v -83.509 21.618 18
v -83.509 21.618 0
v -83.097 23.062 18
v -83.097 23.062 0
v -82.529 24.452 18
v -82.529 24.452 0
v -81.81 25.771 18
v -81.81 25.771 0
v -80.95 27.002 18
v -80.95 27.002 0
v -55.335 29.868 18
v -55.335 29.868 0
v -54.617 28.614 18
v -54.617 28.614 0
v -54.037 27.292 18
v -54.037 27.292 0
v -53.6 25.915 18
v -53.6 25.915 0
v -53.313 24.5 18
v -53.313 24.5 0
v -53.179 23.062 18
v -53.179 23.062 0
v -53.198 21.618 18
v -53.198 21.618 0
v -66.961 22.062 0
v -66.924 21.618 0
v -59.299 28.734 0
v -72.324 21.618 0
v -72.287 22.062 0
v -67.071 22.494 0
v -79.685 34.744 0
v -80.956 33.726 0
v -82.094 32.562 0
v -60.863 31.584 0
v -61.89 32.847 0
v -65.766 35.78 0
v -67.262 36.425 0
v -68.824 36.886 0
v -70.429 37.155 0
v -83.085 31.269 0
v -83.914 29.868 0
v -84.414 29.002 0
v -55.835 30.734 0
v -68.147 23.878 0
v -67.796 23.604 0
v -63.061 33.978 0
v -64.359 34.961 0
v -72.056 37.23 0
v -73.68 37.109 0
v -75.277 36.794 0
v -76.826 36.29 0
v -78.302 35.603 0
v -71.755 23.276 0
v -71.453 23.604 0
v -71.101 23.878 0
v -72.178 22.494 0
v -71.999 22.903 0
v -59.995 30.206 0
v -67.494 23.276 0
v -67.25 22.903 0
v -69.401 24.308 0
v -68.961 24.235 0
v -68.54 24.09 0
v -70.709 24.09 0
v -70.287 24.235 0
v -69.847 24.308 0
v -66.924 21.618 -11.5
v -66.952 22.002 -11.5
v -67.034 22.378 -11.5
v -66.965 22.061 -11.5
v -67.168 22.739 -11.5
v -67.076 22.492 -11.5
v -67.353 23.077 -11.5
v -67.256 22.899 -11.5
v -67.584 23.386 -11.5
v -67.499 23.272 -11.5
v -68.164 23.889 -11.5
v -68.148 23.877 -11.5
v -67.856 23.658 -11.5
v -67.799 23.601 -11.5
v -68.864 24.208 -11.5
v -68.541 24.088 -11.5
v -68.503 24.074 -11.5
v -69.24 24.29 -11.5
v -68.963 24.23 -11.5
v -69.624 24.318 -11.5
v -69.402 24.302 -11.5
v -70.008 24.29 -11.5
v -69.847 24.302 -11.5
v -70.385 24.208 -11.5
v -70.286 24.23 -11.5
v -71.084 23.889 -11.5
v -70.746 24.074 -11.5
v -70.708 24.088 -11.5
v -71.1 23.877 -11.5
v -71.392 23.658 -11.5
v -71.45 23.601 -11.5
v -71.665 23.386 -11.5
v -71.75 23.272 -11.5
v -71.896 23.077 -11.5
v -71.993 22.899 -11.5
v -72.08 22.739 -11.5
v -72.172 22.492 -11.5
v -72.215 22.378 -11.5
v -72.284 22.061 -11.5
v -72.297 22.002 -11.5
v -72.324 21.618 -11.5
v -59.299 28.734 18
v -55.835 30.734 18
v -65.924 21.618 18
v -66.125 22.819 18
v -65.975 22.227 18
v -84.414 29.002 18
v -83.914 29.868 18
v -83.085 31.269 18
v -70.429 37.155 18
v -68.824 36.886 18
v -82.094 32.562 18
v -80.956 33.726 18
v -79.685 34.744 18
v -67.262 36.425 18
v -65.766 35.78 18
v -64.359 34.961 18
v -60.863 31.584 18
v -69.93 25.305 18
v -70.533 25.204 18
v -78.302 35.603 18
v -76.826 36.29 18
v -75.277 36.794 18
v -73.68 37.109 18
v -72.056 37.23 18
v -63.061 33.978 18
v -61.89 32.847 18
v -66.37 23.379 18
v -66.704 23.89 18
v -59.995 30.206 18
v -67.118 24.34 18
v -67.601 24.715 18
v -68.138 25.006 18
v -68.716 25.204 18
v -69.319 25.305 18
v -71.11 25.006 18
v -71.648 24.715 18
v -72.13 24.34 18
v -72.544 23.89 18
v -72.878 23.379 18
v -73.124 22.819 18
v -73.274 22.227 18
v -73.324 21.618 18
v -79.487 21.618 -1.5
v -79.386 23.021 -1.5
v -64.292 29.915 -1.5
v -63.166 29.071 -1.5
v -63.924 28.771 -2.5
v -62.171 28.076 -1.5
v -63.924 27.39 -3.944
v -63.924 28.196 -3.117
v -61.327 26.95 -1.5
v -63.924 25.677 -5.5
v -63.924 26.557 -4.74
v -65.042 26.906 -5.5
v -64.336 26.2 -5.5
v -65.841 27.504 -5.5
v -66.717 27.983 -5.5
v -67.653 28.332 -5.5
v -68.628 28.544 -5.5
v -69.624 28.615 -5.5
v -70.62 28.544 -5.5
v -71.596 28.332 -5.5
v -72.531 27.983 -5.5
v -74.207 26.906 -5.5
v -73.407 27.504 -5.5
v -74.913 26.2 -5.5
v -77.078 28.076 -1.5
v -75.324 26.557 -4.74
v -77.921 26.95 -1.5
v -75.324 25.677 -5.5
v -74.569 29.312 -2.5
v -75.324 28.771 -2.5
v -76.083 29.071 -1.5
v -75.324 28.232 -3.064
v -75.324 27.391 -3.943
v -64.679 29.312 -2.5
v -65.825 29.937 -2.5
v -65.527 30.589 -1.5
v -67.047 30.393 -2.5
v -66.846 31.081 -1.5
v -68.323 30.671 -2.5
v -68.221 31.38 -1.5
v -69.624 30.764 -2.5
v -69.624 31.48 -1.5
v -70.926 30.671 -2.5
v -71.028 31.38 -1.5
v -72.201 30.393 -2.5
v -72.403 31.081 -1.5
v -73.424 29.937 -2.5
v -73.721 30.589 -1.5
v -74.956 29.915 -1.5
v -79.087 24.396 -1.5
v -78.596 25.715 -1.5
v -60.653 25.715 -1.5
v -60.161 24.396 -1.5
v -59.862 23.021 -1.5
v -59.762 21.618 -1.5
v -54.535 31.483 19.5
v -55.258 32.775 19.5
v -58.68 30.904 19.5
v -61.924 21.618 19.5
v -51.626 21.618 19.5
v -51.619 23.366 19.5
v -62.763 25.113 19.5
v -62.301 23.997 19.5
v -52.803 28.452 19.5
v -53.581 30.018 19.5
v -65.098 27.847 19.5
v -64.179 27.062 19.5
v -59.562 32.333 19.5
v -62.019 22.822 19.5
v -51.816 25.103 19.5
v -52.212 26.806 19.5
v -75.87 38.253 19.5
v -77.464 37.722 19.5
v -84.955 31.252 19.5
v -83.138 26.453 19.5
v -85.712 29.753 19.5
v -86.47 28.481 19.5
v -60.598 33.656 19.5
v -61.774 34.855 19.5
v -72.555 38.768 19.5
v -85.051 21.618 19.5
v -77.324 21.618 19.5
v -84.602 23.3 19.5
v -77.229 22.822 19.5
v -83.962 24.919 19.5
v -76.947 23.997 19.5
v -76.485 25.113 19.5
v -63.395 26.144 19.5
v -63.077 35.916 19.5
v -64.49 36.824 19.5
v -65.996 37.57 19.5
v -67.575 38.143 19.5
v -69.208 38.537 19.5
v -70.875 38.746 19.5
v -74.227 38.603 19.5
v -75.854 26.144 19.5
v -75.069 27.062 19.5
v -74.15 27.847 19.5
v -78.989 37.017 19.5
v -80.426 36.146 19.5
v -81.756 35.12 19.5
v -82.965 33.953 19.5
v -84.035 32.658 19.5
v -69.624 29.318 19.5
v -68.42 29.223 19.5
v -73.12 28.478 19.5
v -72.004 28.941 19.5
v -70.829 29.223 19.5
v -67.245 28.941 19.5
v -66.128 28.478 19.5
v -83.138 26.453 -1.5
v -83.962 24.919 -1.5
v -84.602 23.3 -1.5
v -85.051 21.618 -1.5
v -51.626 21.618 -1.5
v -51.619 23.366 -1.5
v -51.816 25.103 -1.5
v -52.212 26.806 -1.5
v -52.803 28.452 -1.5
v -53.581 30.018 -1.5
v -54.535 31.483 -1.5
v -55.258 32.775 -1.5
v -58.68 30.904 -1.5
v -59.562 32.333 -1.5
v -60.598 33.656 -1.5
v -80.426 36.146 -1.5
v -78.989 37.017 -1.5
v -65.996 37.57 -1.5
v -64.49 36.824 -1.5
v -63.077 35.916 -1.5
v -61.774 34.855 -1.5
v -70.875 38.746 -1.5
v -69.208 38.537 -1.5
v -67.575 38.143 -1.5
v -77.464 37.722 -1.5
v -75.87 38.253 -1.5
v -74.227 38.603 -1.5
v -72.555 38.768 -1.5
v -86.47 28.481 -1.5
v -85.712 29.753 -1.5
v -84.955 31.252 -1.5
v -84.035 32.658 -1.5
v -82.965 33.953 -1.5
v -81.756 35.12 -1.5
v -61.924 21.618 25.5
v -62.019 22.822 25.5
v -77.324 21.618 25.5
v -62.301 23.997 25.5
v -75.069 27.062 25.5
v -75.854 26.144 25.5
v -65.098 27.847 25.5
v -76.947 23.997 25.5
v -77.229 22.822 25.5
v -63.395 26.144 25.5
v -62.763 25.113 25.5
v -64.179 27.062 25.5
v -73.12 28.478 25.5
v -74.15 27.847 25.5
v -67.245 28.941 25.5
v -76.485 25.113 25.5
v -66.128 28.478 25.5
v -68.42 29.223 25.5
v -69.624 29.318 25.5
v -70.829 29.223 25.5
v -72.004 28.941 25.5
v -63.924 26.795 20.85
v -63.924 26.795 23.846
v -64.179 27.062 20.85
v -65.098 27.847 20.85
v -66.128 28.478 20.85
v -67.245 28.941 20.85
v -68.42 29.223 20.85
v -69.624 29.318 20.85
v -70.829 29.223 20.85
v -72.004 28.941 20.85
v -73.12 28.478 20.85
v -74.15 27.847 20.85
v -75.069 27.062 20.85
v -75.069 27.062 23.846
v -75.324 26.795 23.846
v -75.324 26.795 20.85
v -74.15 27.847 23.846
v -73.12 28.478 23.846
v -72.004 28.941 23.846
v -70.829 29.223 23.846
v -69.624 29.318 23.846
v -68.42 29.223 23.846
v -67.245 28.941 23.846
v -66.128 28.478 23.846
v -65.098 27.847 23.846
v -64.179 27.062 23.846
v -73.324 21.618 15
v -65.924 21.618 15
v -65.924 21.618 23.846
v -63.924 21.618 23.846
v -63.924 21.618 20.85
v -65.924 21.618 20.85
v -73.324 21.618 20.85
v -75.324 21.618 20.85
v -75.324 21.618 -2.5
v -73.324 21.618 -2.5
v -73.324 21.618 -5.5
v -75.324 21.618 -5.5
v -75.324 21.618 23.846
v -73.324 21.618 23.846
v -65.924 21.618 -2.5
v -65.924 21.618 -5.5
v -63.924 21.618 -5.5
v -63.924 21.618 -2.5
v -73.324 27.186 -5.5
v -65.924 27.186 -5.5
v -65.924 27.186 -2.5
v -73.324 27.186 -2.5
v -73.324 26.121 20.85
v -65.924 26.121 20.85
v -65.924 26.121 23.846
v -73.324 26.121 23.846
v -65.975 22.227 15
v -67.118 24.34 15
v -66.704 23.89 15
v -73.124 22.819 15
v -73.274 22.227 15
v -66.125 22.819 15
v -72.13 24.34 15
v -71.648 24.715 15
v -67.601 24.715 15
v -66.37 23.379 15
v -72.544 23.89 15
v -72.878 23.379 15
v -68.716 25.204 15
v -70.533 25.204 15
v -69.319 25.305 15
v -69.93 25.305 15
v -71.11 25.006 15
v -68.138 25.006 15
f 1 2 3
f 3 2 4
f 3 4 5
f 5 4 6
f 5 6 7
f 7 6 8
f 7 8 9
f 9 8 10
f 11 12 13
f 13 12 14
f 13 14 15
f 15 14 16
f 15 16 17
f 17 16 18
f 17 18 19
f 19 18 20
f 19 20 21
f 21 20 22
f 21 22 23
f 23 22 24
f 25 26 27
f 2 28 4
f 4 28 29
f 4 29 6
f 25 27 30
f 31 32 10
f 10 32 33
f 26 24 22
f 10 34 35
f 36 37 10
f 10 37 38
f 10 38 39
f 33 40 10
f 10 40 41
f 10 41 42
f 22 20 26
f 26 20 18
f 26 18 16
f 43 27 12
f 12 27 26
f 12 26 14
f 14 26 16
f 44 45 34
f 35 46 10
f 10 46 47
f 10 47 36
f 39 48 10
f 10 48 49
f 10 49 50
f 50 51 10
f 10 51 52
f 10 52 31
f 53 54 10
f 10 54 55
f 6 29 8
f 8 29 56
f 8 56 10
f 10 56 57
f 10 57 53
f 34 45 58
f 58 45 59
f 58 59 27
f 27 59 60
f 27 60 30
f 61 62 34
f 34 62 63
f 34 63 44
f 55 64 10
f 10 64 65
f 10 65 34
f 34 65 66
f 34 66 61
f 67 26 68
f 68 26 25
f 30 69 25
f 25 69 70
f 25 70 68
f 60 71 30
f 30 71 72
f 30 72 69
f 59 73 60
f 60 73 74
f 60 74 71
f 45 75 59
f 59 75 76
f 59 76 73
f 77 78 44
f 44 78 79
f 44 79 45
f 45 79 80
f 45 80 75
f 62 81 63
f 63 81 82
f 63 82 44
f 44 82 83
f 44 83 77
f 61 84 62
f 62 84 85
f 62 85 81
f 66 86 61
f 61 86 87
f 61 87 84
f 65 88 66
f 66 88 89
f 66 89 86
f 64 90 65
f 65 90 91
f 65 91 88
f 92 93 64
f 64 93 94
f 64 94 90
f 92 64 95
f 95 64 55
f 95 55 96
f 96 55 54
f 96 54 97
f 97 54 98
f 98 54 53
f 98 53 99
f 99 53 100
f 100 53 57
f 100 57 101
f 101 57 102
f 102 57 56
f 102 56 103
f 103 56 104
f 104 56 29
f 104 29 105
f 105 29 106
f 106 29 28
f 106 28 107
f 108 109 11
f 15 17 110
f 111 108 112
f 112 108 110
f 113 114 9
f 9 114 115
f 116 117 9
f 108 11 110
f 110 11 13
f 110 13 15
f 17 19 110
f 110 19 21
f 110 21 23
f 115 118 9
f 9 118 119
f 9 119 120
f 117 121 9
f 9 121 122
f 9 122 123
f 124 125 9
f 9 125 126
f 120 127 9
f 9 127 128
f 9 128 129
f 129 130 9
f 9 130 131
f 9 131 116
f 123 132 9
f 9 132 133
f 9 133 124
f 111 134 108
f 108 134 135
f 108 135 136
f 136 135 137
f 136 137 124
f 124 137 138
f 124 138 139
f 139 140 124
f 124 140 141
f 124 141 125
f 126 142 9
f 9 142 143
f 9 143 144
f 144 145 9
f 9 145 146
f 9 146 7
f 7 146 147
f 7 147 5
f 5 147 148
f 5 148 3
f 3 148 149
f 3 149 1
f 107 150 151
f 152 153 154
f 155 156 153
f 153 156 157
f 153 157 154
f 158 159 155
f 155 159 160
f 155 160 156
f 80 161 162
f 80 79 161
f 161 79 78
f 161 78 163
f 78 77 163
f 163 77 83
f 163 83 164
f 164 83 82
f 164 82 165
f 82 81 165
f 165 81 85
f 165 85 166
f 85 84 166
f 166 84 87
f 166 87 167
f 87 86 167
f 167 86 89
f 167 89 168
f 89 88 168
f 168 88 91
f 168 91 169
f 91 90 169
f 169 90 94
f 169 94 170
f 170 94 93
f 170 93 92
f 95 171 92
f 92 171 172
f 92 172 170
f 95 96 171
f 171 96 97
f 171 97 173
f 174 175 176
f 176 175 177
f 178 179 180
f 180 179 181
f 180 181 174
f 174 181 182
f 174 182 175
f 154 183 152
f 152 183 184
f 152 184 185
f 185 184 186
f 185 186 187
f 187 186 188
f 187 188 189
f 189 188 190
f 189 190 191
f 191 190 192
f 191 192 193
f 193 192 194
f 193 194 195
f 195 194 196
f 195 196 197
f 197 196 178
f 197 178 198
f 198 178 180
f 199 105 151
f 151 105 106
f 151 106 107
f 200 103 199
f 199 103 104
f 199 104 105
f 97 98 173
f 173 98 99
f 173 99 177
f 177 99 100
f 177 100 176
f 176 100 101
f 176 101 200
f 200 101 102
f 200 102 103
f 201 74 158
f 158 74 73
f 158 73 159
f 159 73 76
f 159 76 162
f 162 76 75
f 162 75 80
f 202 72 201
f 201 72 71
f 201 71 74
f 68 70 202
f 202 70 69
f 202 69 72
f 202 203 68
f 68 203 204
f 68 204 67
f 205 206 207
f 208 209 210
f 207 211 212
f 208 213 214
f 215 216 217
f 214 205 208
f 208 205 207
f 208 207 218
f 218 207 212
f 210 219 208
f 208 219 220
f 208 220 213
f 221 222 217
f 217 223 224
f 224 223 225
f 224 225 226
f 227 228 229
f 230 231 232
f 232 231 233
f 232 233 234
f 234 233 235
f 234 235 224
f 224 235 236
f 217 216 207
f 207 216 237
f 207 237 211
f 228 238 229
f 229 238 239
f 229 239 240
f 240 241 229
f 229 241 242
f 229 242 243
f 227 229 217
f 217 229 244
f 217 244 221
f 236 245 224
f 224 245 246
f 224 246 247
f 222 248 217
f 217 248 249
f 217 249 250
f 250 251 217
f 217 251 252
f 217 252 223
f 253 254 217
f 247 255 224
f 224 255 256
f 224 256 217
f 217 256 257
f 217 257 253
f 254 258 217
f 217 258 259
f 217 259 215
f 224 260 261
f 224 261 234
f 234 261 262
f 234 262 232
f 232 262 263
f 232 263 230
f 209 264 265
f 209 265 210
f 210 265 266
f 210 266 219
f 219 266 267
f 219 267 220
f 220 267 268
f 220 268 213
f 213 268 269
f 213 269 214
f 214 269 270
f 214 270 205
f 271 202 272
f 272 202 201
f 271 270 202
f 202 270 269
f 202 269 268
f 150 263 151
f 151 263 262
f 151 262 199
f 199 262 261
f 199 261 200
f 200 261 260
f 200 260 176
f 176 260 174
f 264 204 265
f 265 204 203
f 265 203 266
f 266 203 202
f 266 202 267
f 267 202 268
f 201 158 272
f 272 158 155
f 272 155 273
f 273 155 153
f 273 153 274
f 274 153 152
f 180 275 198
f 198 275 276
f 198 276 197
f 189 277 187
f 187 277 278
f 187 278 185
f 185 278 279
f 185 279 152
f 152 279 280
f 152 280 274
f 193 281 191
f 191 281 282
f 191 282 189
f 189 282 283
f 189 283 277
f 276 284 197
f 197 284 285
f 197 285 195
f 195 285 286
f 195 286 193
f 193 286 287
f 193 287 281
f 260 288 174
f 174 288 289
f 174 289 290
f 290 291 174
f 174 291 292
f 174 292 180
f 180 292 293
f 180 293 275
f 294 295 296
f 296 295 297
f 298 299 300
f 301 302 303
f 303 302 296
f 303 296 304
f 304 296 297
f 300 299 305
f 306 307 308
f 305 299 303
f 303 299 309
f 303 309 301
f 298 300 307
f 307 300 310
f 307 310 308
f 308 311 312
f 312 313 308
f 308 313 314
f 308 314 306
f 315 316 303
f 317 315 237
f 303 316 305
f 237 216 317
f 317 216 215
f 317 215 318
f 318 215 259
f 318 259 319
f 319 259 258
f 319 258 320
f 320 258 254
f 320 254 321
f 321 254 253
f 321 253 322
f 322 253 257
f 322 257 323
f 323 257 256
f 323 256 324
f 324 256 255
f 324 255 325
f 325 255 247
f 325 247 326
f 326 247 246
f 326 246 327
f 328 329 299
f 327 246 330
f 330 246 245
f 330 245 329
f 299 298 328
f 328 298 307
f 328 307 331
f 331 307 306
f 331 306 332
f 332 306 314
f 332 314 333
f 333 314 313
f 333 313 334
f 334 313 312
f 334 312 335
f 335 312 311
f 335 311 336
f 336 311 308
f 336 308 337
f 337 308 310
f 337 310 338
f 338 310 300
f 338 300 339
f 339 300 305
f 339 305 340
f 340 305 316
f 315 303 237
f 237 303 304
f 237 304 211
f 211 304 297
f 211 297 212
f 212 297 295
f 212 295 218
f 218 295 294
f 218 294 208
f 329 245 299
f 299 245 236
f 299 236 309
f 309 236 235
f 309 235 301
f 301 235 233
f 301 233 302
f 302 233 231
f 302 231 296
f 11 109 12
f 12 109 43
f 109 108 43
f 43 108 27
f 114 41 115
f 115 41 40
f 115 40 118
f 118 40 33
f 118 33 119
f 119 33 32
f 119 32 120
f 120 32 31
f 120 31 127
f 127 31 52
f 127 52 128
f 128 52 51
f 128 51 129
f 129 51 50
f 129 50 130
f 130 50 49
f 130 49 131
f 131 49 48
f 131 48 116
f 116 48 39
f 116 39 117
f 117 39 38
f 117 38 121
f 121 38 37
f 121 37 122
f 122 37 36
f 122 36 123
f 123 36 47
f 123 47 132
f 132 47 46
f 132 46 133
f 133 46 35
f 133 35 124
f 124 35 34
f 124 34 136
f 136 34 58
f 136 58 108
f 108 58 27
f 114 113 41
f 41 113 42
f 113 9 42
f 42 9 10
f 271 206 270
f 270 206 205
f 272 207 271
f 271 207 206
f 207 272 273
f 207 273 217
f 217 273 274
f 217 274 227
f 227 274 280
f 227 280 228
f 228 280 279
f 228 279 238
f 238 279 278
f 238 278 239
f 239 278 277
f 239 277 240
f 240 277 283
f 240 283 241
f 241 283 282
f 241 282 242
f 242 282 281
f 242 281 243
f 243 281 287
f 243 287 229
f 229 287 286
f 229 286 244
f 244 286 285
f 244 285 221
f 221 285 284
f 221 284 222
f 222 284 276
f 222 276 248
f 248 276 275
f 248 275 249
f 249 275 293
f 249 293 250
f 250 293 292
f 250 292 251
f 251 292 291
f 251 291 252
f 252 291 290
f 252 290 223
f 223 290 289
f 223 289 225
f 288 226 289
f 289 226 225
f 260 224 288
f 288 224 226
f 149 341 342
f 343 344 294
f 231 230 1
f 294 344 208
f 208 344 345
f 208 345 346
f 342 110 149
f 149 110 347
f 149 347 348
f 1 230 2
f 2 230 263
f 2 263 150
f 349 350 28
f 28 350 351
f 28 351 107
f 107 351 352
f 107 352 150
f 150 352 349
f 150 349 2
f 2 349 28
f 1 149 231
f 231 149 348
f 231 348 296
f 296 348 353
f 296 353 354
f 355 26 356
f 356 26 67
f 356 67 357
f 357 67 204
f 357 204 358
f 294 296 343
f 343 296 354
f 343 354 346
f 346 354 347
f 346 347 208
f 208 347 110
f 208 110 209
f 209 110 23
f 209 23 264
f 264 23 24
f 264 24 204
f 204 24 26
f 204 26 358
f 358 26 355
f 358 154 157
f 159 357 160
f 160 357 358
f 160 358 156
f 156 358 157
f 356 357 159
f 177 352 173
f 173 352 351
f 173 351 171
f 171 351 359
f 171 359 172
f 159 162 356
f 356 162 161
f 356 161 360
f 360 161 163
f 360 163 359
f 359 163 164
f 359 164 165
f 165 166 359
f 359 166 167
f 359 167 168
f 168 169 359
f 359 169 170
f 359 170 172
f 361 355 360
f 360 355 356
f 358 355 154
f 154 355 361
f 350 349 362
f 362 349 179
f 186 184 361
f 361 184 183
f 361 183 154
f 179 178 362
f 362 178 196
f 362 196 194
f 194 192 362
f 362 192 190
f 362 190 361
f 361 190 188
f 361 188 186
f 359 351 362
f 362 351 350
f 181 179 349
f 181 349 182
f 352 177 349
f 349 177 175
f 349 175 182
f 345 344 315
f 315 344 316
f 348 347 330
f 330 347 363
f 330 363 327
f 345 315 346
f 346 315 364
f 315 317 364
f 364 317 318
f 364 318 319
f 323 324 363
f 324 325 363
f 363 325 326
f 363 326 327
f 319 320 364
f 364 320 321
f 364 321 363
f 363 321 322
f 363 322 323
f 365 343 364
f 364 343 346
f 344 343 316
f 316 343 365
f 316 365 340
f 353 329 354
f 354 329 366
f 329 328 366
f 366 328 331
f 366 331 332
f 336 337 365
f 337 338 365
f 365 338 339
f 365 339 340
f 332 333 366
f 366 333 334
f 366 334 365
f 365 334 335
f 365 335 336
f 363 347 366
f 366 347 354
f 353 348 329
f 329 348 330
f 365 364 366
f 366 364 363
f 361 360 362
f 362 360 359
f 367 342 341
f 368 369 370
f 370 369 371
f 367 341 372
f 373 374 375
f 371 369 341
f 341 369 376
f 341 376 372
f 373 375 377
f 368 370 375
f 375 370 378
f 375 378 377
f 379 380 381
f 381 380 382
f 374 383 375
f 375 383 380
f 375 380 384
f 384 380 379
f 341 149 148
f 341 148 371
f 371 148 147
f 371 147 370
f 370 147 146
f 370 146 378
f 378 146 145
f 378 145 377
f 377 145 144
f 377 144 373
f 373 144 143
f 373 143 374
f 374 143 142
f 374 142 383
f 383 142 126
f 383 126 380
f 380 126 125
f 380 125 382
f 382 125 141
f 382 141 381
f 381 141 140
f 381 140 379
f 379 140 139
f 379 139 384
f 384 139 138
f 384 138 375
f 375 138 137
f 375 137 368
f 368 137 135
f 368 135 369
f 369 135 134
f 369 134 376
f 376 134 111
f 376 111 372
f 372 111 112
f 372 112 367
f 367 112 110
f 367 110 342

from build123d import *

# Parameters (mm, degrees)
SALIENTE_EXTRUIR1_DEPTH = 18
SALIENTE_EXTRUIR2_START = 1.5
CROQUIS2_R              = 2.7
SALIENTE_EXTRUIR2_DEPTH = 1.5
SALIENTE_EXTRUIR3_DEPTH = 1.5
CROQUIS6_W              = 5.4
CROQUIS6_H              = 1.181933233
SALIENTE_EXTRUIR7_DEPTH = 10
CROQUIS7_W              = 5.4
CROQUIS7_H              = 10
CORTAR_EXTRUIR2_DEPTH   = 16.5
CROQUIS9_W              = 52.468080771
CROQUIS9_H              = 55.683263094
CORTAR_EXTRUIR3_DEPTH   = 30
CROQUIS10_W             = 2
CROQUIS10_H             = 3
CROQUIS10_H_2           = 2.995767736
CORTAR_EXTRUIR4_DEPTH   = 10
CROQUIS11_W             = 2.995767736
CROQUIS11_H             = 6.287117146
CROQUIS11_W_2           = 3
CROQUIS11_H_2           = 6.399149596
CORTAR_EXTRUIR5_DEPTH   = 7.4
CROQUIS12_W             = 3.7
CROQUIS12_H             = 3
REVOLUCI_N2_ANGLE       = 180


with BuildPart() as part:
    # Croquis1 → Saliente-Extruir1 (new body)
    with BuildSketch(Plane.XY):
        with BuildLine():
            Line((-54.535099114, 31.482780649), (-55.25791247, 32.775048384))
            Line((-55.25791247, 32.775048384), (-58.679569293, 30.903614553))
            ThreePointArc((-58.679569293, 30.903614553), (-72.555259572, 38.768368337), (-85.712228427, 29.752642999))
            Line((-85.712228427, 29.752642999), (-86.469958437, 28.480534403))
            Line((-86.469958437, 28.480534403), (-83.138420786, 26.453009587))
            ThreePointArc((-83.138420786, 26.453009587), (-83.011652218, 10.503932418), (-68.625320614, 3.617525822))
            Line((-68.625320614, 3.617525822), (-67.144777249, 3.597366682))
            Line((-67.144777249, 3.597366682), (-67.054658077, 7.49632533))
            ThreePointArc((-67.054658077, 7.49632533), (-53.305736365, 15.580648714), (-54.535099114, 31.482780649))
        make_face()
        with BuildLine():
            Line((-69.624216052, 5.117649823), (-68.624216052, 5.117649823))
            Line((-68.624216052, 5.117649823), (-68.624216052, 9.117649823))
            ThreePointArc((-68.624216052, 9.117649823), (-55.305921191, 15.218525867), (-55.334796889, 29.867649823))
            Line((-55.334796889, 29.867649823), (-55.834796889, 30.733675227))
            Line((-55.834796889, 30.733675227), (-59.298898504, 28.733675227))
            ThreePointArc((-59.298898504, 28.733675227), (-71.241559574, 37.21721889), (-83.913635214, 29.867649823))
            Line((-83.913635214, 29.867649823), (-84.413635214, 29.001624419))
            Line((-84.413635214, 29.001624419), (-80.949533599, 27.001624419))
            ThreePointArc((-80.949533599, 27.001624419), (-82.325167391, 12.417204713), (-69.624216052, 5.117649823))
        make_face(mode=Mode.SUBTRACT)
    extrude(amount=SALIENTE_EXTRUIR1_DEPTH)

    # Croquis2 → Saliente-Extruir2 (add)
    with BuildSketch(Plane(origin=(0, 0, 0), x_dir=(-1, 0, 0), z_dir=(0, 0, -1)).offset(SALIENTE_EXTRUIR2_START)):
        with BuildLine():
            Line((67.054658077, 7.49632533), (67.144777249, 3.597366682))
            Line((67.144777249, 3.597366682), (68.625320614, 3.617525822))
            ThreePointArc((68.625320614, 3.617525822), (83.011652218, 10.503932418), (83.138420786, 26.453009587))
            Line((83.138420786, 26.453009587), (86.469958437, 28.480534403))
            Line((86.469958437, 28.480534403), (85.712228427, 29.752642999))
            ThreePointArc((85.712228427, 29.752642999), (72.555259572, 38.768368337), (58.679569293, 30.903614553))
            Line((58.679569293, 30.903614553), (55.25791247, 32.775048384))
            Line((55.25791247, 32.775048384), (54.535099114, 31.482780649))
            ThreePointArc((54.535099114, 31.482780649), (53.305736365, 15.580648714), (67.054658077, 7.49632533))
        make_face()
        with Locations((69.624216052, 21.617649823)):
            Circle(CROQUIS2_R, mode=Mode.SUBTRACT)
    extrude(amount=-SALIENTE_EXTRUIR2_DEPTH)

    # Croquis3 → Saliente-Extruir3 (add)
    with BuildSketch(Plane.XY.offset(18)):
        with BuildLine():
            Line((-67.144777249, 3.597366682), (-67.054658077, 7.49632533))
            ThreePointArc((-67.054658077, 7.49632533), (-53.305736365, 15.580648714), (-54.535099114, 31.482780649))
            Line((-54.535099114, 31.482780649), (-55.25791247, 32.775048384))
            Line((-55.25791247, 32.775048384), (-58.679569293, 30.903614553))
            ThreePointArc((-58.679569293, 30.903614553), (-72.555259572, 38.768368337), (-85.712228427, 29.752642999))
            Line((-85.712228427, 29.752642999), (-86.469958437, 28.480534403))
            Line((-86.469958437, 28.480534403), (-83.138420786, 26.453009587))
            ThreePointArc((-83.138420786, 26.453009587), (-83.011652218, 10.503932418), (-68.625320614, 3.617525822))
            Line((-68.625320614, 3.617525822), (-67.144777249, 3.597366682))
        make_face()
    extrude(amount=SALIENTE_EXTRUIR3_DEPTH)

    # Croquis6 → Saliente-Extruir7 (add)
    with BuildSketch(Plane(origin=(0, 0, -1.5), x_dir=(-1, 0, 0), z_dir=(0, 0, -1))):
        with Locations((69.624216052, 21.026683207)):
            Rectangle(CROQUIS6_W, CROQUIS6_H)
    extrude(amount=SALIENTE_EXTRUIR7_DEPTH)

    # Croquis7 → Cortar-Extruir2 (cut)
    with BuildSketch(Plane(origin=(0, 21.617649823, 0), x_dir=(1, 0, 0), z_dir=(0, 1, 0))):
        with Locations((-69.624216052, 6.5)):
            Rectangle(CROQUIS7_W, CROQUIS7_H)
    extrude(amount=-CORTAR_EXTRUIR2_DEPTH, mode=Mode.SUBTRACT)

    # Croquis8 → Revolución1 (revolve)
    with BuildSketch(Plane(origin=(0, 21.617649823, 0), x_dir=(1, 0, 0), z_dir=(0, 1, 0)), mode=Mode.PRIVATE) as revoluci_n1_sk:
        Polygon((-72.324216052, 1.5), (-79.486781688, 1.5), (-72.324216052, 11.5), align=None)
        Polygon((-72.324216052, -19.5), (-69.624216052, -19.5), (-69.624216052, -25.5), (-72.324216052, -25.5), (-77.324216052, -25.5), (-77.324216052, -19.5), align=None)
    revolve(revoluci_n1_sk.sketch.rotate(Axis((-69.624216052, 21.617649823, 19.5), (0, 0, 1)), 180), axis=Axis((-69.624216052, 21.617649823, 19.5), (0, 0, 1)))

    # Croquis9 → Cortar-Extruir3 (cut)
    with BuildSketch(Plane(origin=(0, 21.617649823, 0), x_dir=(1, 0, 0), z_dir=(0, 1, 0))):
        with Locations((-61.70964897, -8.735329994)):
            Rectangle(CROQUIS9_W, CROQUIS9_H)
    extrude(amount=-CORTAR_EXTRUIR3_DEPTH, mode=Mode.SUBTRACT)

    # Croquis10 → Cortar-Extruir4 (cut)
    with BuildSketch(Plane.XZ.offset(-21.617649823)):
        with Locations((-64.924216052, -4)):
            Rectangle(CROQUIS10_W, CROQUIS10_H)
        with Locations((-74.324216052, -4)):
            Rectangle(CROQUIS10_W, CROQUIS10_H)
        with Locations((-64.924216052, 22.347883868)):
            Rectangle(CROQUIS10_W, CROQUIS10_H_2)
        with Locations((-74.324216052, 22.347883868)):
            Rectangle(CROQUIS10_W, CROQUIS10_H_2)
    extrude(amount=-CORTAR_EXTRUIR4_DEPTH, mode=Mode.SUBTRACT)

    # Croquis11 → Cortar-Extruir5 (cut)
    with BuildSketch(Plane.ZY.offset(73.324216052)):
        with Locations((22.347883868, 29.264688265)):
            Rectangle(CROQUIS11_W, CROQUIS11_H)
        with Locations((-4, 30.385140174)):
            Rectangle(CROQUIS11_W_2, CROQUIS11_H_2)
    extrude(amount=-CORTAR_EXTRUIR5_DEPTH, mode=Mode.SUBTRACT)

    # Croquis12 → Revolución2 (revolve)
    with BuildSketch(Plane.XZ.offset(-21.617649823)):
        with Locations((-71.474216052, 16.5)):
            Rectangle(CROQUIS12_W, CROQUIS12_H)
    revolve(axis=Axis((-69.624216052, 21.617649823, 18), (0, 0, -1)), revolution_arc=REVOLUCI_N2_ANGLE)


solid = part.part
